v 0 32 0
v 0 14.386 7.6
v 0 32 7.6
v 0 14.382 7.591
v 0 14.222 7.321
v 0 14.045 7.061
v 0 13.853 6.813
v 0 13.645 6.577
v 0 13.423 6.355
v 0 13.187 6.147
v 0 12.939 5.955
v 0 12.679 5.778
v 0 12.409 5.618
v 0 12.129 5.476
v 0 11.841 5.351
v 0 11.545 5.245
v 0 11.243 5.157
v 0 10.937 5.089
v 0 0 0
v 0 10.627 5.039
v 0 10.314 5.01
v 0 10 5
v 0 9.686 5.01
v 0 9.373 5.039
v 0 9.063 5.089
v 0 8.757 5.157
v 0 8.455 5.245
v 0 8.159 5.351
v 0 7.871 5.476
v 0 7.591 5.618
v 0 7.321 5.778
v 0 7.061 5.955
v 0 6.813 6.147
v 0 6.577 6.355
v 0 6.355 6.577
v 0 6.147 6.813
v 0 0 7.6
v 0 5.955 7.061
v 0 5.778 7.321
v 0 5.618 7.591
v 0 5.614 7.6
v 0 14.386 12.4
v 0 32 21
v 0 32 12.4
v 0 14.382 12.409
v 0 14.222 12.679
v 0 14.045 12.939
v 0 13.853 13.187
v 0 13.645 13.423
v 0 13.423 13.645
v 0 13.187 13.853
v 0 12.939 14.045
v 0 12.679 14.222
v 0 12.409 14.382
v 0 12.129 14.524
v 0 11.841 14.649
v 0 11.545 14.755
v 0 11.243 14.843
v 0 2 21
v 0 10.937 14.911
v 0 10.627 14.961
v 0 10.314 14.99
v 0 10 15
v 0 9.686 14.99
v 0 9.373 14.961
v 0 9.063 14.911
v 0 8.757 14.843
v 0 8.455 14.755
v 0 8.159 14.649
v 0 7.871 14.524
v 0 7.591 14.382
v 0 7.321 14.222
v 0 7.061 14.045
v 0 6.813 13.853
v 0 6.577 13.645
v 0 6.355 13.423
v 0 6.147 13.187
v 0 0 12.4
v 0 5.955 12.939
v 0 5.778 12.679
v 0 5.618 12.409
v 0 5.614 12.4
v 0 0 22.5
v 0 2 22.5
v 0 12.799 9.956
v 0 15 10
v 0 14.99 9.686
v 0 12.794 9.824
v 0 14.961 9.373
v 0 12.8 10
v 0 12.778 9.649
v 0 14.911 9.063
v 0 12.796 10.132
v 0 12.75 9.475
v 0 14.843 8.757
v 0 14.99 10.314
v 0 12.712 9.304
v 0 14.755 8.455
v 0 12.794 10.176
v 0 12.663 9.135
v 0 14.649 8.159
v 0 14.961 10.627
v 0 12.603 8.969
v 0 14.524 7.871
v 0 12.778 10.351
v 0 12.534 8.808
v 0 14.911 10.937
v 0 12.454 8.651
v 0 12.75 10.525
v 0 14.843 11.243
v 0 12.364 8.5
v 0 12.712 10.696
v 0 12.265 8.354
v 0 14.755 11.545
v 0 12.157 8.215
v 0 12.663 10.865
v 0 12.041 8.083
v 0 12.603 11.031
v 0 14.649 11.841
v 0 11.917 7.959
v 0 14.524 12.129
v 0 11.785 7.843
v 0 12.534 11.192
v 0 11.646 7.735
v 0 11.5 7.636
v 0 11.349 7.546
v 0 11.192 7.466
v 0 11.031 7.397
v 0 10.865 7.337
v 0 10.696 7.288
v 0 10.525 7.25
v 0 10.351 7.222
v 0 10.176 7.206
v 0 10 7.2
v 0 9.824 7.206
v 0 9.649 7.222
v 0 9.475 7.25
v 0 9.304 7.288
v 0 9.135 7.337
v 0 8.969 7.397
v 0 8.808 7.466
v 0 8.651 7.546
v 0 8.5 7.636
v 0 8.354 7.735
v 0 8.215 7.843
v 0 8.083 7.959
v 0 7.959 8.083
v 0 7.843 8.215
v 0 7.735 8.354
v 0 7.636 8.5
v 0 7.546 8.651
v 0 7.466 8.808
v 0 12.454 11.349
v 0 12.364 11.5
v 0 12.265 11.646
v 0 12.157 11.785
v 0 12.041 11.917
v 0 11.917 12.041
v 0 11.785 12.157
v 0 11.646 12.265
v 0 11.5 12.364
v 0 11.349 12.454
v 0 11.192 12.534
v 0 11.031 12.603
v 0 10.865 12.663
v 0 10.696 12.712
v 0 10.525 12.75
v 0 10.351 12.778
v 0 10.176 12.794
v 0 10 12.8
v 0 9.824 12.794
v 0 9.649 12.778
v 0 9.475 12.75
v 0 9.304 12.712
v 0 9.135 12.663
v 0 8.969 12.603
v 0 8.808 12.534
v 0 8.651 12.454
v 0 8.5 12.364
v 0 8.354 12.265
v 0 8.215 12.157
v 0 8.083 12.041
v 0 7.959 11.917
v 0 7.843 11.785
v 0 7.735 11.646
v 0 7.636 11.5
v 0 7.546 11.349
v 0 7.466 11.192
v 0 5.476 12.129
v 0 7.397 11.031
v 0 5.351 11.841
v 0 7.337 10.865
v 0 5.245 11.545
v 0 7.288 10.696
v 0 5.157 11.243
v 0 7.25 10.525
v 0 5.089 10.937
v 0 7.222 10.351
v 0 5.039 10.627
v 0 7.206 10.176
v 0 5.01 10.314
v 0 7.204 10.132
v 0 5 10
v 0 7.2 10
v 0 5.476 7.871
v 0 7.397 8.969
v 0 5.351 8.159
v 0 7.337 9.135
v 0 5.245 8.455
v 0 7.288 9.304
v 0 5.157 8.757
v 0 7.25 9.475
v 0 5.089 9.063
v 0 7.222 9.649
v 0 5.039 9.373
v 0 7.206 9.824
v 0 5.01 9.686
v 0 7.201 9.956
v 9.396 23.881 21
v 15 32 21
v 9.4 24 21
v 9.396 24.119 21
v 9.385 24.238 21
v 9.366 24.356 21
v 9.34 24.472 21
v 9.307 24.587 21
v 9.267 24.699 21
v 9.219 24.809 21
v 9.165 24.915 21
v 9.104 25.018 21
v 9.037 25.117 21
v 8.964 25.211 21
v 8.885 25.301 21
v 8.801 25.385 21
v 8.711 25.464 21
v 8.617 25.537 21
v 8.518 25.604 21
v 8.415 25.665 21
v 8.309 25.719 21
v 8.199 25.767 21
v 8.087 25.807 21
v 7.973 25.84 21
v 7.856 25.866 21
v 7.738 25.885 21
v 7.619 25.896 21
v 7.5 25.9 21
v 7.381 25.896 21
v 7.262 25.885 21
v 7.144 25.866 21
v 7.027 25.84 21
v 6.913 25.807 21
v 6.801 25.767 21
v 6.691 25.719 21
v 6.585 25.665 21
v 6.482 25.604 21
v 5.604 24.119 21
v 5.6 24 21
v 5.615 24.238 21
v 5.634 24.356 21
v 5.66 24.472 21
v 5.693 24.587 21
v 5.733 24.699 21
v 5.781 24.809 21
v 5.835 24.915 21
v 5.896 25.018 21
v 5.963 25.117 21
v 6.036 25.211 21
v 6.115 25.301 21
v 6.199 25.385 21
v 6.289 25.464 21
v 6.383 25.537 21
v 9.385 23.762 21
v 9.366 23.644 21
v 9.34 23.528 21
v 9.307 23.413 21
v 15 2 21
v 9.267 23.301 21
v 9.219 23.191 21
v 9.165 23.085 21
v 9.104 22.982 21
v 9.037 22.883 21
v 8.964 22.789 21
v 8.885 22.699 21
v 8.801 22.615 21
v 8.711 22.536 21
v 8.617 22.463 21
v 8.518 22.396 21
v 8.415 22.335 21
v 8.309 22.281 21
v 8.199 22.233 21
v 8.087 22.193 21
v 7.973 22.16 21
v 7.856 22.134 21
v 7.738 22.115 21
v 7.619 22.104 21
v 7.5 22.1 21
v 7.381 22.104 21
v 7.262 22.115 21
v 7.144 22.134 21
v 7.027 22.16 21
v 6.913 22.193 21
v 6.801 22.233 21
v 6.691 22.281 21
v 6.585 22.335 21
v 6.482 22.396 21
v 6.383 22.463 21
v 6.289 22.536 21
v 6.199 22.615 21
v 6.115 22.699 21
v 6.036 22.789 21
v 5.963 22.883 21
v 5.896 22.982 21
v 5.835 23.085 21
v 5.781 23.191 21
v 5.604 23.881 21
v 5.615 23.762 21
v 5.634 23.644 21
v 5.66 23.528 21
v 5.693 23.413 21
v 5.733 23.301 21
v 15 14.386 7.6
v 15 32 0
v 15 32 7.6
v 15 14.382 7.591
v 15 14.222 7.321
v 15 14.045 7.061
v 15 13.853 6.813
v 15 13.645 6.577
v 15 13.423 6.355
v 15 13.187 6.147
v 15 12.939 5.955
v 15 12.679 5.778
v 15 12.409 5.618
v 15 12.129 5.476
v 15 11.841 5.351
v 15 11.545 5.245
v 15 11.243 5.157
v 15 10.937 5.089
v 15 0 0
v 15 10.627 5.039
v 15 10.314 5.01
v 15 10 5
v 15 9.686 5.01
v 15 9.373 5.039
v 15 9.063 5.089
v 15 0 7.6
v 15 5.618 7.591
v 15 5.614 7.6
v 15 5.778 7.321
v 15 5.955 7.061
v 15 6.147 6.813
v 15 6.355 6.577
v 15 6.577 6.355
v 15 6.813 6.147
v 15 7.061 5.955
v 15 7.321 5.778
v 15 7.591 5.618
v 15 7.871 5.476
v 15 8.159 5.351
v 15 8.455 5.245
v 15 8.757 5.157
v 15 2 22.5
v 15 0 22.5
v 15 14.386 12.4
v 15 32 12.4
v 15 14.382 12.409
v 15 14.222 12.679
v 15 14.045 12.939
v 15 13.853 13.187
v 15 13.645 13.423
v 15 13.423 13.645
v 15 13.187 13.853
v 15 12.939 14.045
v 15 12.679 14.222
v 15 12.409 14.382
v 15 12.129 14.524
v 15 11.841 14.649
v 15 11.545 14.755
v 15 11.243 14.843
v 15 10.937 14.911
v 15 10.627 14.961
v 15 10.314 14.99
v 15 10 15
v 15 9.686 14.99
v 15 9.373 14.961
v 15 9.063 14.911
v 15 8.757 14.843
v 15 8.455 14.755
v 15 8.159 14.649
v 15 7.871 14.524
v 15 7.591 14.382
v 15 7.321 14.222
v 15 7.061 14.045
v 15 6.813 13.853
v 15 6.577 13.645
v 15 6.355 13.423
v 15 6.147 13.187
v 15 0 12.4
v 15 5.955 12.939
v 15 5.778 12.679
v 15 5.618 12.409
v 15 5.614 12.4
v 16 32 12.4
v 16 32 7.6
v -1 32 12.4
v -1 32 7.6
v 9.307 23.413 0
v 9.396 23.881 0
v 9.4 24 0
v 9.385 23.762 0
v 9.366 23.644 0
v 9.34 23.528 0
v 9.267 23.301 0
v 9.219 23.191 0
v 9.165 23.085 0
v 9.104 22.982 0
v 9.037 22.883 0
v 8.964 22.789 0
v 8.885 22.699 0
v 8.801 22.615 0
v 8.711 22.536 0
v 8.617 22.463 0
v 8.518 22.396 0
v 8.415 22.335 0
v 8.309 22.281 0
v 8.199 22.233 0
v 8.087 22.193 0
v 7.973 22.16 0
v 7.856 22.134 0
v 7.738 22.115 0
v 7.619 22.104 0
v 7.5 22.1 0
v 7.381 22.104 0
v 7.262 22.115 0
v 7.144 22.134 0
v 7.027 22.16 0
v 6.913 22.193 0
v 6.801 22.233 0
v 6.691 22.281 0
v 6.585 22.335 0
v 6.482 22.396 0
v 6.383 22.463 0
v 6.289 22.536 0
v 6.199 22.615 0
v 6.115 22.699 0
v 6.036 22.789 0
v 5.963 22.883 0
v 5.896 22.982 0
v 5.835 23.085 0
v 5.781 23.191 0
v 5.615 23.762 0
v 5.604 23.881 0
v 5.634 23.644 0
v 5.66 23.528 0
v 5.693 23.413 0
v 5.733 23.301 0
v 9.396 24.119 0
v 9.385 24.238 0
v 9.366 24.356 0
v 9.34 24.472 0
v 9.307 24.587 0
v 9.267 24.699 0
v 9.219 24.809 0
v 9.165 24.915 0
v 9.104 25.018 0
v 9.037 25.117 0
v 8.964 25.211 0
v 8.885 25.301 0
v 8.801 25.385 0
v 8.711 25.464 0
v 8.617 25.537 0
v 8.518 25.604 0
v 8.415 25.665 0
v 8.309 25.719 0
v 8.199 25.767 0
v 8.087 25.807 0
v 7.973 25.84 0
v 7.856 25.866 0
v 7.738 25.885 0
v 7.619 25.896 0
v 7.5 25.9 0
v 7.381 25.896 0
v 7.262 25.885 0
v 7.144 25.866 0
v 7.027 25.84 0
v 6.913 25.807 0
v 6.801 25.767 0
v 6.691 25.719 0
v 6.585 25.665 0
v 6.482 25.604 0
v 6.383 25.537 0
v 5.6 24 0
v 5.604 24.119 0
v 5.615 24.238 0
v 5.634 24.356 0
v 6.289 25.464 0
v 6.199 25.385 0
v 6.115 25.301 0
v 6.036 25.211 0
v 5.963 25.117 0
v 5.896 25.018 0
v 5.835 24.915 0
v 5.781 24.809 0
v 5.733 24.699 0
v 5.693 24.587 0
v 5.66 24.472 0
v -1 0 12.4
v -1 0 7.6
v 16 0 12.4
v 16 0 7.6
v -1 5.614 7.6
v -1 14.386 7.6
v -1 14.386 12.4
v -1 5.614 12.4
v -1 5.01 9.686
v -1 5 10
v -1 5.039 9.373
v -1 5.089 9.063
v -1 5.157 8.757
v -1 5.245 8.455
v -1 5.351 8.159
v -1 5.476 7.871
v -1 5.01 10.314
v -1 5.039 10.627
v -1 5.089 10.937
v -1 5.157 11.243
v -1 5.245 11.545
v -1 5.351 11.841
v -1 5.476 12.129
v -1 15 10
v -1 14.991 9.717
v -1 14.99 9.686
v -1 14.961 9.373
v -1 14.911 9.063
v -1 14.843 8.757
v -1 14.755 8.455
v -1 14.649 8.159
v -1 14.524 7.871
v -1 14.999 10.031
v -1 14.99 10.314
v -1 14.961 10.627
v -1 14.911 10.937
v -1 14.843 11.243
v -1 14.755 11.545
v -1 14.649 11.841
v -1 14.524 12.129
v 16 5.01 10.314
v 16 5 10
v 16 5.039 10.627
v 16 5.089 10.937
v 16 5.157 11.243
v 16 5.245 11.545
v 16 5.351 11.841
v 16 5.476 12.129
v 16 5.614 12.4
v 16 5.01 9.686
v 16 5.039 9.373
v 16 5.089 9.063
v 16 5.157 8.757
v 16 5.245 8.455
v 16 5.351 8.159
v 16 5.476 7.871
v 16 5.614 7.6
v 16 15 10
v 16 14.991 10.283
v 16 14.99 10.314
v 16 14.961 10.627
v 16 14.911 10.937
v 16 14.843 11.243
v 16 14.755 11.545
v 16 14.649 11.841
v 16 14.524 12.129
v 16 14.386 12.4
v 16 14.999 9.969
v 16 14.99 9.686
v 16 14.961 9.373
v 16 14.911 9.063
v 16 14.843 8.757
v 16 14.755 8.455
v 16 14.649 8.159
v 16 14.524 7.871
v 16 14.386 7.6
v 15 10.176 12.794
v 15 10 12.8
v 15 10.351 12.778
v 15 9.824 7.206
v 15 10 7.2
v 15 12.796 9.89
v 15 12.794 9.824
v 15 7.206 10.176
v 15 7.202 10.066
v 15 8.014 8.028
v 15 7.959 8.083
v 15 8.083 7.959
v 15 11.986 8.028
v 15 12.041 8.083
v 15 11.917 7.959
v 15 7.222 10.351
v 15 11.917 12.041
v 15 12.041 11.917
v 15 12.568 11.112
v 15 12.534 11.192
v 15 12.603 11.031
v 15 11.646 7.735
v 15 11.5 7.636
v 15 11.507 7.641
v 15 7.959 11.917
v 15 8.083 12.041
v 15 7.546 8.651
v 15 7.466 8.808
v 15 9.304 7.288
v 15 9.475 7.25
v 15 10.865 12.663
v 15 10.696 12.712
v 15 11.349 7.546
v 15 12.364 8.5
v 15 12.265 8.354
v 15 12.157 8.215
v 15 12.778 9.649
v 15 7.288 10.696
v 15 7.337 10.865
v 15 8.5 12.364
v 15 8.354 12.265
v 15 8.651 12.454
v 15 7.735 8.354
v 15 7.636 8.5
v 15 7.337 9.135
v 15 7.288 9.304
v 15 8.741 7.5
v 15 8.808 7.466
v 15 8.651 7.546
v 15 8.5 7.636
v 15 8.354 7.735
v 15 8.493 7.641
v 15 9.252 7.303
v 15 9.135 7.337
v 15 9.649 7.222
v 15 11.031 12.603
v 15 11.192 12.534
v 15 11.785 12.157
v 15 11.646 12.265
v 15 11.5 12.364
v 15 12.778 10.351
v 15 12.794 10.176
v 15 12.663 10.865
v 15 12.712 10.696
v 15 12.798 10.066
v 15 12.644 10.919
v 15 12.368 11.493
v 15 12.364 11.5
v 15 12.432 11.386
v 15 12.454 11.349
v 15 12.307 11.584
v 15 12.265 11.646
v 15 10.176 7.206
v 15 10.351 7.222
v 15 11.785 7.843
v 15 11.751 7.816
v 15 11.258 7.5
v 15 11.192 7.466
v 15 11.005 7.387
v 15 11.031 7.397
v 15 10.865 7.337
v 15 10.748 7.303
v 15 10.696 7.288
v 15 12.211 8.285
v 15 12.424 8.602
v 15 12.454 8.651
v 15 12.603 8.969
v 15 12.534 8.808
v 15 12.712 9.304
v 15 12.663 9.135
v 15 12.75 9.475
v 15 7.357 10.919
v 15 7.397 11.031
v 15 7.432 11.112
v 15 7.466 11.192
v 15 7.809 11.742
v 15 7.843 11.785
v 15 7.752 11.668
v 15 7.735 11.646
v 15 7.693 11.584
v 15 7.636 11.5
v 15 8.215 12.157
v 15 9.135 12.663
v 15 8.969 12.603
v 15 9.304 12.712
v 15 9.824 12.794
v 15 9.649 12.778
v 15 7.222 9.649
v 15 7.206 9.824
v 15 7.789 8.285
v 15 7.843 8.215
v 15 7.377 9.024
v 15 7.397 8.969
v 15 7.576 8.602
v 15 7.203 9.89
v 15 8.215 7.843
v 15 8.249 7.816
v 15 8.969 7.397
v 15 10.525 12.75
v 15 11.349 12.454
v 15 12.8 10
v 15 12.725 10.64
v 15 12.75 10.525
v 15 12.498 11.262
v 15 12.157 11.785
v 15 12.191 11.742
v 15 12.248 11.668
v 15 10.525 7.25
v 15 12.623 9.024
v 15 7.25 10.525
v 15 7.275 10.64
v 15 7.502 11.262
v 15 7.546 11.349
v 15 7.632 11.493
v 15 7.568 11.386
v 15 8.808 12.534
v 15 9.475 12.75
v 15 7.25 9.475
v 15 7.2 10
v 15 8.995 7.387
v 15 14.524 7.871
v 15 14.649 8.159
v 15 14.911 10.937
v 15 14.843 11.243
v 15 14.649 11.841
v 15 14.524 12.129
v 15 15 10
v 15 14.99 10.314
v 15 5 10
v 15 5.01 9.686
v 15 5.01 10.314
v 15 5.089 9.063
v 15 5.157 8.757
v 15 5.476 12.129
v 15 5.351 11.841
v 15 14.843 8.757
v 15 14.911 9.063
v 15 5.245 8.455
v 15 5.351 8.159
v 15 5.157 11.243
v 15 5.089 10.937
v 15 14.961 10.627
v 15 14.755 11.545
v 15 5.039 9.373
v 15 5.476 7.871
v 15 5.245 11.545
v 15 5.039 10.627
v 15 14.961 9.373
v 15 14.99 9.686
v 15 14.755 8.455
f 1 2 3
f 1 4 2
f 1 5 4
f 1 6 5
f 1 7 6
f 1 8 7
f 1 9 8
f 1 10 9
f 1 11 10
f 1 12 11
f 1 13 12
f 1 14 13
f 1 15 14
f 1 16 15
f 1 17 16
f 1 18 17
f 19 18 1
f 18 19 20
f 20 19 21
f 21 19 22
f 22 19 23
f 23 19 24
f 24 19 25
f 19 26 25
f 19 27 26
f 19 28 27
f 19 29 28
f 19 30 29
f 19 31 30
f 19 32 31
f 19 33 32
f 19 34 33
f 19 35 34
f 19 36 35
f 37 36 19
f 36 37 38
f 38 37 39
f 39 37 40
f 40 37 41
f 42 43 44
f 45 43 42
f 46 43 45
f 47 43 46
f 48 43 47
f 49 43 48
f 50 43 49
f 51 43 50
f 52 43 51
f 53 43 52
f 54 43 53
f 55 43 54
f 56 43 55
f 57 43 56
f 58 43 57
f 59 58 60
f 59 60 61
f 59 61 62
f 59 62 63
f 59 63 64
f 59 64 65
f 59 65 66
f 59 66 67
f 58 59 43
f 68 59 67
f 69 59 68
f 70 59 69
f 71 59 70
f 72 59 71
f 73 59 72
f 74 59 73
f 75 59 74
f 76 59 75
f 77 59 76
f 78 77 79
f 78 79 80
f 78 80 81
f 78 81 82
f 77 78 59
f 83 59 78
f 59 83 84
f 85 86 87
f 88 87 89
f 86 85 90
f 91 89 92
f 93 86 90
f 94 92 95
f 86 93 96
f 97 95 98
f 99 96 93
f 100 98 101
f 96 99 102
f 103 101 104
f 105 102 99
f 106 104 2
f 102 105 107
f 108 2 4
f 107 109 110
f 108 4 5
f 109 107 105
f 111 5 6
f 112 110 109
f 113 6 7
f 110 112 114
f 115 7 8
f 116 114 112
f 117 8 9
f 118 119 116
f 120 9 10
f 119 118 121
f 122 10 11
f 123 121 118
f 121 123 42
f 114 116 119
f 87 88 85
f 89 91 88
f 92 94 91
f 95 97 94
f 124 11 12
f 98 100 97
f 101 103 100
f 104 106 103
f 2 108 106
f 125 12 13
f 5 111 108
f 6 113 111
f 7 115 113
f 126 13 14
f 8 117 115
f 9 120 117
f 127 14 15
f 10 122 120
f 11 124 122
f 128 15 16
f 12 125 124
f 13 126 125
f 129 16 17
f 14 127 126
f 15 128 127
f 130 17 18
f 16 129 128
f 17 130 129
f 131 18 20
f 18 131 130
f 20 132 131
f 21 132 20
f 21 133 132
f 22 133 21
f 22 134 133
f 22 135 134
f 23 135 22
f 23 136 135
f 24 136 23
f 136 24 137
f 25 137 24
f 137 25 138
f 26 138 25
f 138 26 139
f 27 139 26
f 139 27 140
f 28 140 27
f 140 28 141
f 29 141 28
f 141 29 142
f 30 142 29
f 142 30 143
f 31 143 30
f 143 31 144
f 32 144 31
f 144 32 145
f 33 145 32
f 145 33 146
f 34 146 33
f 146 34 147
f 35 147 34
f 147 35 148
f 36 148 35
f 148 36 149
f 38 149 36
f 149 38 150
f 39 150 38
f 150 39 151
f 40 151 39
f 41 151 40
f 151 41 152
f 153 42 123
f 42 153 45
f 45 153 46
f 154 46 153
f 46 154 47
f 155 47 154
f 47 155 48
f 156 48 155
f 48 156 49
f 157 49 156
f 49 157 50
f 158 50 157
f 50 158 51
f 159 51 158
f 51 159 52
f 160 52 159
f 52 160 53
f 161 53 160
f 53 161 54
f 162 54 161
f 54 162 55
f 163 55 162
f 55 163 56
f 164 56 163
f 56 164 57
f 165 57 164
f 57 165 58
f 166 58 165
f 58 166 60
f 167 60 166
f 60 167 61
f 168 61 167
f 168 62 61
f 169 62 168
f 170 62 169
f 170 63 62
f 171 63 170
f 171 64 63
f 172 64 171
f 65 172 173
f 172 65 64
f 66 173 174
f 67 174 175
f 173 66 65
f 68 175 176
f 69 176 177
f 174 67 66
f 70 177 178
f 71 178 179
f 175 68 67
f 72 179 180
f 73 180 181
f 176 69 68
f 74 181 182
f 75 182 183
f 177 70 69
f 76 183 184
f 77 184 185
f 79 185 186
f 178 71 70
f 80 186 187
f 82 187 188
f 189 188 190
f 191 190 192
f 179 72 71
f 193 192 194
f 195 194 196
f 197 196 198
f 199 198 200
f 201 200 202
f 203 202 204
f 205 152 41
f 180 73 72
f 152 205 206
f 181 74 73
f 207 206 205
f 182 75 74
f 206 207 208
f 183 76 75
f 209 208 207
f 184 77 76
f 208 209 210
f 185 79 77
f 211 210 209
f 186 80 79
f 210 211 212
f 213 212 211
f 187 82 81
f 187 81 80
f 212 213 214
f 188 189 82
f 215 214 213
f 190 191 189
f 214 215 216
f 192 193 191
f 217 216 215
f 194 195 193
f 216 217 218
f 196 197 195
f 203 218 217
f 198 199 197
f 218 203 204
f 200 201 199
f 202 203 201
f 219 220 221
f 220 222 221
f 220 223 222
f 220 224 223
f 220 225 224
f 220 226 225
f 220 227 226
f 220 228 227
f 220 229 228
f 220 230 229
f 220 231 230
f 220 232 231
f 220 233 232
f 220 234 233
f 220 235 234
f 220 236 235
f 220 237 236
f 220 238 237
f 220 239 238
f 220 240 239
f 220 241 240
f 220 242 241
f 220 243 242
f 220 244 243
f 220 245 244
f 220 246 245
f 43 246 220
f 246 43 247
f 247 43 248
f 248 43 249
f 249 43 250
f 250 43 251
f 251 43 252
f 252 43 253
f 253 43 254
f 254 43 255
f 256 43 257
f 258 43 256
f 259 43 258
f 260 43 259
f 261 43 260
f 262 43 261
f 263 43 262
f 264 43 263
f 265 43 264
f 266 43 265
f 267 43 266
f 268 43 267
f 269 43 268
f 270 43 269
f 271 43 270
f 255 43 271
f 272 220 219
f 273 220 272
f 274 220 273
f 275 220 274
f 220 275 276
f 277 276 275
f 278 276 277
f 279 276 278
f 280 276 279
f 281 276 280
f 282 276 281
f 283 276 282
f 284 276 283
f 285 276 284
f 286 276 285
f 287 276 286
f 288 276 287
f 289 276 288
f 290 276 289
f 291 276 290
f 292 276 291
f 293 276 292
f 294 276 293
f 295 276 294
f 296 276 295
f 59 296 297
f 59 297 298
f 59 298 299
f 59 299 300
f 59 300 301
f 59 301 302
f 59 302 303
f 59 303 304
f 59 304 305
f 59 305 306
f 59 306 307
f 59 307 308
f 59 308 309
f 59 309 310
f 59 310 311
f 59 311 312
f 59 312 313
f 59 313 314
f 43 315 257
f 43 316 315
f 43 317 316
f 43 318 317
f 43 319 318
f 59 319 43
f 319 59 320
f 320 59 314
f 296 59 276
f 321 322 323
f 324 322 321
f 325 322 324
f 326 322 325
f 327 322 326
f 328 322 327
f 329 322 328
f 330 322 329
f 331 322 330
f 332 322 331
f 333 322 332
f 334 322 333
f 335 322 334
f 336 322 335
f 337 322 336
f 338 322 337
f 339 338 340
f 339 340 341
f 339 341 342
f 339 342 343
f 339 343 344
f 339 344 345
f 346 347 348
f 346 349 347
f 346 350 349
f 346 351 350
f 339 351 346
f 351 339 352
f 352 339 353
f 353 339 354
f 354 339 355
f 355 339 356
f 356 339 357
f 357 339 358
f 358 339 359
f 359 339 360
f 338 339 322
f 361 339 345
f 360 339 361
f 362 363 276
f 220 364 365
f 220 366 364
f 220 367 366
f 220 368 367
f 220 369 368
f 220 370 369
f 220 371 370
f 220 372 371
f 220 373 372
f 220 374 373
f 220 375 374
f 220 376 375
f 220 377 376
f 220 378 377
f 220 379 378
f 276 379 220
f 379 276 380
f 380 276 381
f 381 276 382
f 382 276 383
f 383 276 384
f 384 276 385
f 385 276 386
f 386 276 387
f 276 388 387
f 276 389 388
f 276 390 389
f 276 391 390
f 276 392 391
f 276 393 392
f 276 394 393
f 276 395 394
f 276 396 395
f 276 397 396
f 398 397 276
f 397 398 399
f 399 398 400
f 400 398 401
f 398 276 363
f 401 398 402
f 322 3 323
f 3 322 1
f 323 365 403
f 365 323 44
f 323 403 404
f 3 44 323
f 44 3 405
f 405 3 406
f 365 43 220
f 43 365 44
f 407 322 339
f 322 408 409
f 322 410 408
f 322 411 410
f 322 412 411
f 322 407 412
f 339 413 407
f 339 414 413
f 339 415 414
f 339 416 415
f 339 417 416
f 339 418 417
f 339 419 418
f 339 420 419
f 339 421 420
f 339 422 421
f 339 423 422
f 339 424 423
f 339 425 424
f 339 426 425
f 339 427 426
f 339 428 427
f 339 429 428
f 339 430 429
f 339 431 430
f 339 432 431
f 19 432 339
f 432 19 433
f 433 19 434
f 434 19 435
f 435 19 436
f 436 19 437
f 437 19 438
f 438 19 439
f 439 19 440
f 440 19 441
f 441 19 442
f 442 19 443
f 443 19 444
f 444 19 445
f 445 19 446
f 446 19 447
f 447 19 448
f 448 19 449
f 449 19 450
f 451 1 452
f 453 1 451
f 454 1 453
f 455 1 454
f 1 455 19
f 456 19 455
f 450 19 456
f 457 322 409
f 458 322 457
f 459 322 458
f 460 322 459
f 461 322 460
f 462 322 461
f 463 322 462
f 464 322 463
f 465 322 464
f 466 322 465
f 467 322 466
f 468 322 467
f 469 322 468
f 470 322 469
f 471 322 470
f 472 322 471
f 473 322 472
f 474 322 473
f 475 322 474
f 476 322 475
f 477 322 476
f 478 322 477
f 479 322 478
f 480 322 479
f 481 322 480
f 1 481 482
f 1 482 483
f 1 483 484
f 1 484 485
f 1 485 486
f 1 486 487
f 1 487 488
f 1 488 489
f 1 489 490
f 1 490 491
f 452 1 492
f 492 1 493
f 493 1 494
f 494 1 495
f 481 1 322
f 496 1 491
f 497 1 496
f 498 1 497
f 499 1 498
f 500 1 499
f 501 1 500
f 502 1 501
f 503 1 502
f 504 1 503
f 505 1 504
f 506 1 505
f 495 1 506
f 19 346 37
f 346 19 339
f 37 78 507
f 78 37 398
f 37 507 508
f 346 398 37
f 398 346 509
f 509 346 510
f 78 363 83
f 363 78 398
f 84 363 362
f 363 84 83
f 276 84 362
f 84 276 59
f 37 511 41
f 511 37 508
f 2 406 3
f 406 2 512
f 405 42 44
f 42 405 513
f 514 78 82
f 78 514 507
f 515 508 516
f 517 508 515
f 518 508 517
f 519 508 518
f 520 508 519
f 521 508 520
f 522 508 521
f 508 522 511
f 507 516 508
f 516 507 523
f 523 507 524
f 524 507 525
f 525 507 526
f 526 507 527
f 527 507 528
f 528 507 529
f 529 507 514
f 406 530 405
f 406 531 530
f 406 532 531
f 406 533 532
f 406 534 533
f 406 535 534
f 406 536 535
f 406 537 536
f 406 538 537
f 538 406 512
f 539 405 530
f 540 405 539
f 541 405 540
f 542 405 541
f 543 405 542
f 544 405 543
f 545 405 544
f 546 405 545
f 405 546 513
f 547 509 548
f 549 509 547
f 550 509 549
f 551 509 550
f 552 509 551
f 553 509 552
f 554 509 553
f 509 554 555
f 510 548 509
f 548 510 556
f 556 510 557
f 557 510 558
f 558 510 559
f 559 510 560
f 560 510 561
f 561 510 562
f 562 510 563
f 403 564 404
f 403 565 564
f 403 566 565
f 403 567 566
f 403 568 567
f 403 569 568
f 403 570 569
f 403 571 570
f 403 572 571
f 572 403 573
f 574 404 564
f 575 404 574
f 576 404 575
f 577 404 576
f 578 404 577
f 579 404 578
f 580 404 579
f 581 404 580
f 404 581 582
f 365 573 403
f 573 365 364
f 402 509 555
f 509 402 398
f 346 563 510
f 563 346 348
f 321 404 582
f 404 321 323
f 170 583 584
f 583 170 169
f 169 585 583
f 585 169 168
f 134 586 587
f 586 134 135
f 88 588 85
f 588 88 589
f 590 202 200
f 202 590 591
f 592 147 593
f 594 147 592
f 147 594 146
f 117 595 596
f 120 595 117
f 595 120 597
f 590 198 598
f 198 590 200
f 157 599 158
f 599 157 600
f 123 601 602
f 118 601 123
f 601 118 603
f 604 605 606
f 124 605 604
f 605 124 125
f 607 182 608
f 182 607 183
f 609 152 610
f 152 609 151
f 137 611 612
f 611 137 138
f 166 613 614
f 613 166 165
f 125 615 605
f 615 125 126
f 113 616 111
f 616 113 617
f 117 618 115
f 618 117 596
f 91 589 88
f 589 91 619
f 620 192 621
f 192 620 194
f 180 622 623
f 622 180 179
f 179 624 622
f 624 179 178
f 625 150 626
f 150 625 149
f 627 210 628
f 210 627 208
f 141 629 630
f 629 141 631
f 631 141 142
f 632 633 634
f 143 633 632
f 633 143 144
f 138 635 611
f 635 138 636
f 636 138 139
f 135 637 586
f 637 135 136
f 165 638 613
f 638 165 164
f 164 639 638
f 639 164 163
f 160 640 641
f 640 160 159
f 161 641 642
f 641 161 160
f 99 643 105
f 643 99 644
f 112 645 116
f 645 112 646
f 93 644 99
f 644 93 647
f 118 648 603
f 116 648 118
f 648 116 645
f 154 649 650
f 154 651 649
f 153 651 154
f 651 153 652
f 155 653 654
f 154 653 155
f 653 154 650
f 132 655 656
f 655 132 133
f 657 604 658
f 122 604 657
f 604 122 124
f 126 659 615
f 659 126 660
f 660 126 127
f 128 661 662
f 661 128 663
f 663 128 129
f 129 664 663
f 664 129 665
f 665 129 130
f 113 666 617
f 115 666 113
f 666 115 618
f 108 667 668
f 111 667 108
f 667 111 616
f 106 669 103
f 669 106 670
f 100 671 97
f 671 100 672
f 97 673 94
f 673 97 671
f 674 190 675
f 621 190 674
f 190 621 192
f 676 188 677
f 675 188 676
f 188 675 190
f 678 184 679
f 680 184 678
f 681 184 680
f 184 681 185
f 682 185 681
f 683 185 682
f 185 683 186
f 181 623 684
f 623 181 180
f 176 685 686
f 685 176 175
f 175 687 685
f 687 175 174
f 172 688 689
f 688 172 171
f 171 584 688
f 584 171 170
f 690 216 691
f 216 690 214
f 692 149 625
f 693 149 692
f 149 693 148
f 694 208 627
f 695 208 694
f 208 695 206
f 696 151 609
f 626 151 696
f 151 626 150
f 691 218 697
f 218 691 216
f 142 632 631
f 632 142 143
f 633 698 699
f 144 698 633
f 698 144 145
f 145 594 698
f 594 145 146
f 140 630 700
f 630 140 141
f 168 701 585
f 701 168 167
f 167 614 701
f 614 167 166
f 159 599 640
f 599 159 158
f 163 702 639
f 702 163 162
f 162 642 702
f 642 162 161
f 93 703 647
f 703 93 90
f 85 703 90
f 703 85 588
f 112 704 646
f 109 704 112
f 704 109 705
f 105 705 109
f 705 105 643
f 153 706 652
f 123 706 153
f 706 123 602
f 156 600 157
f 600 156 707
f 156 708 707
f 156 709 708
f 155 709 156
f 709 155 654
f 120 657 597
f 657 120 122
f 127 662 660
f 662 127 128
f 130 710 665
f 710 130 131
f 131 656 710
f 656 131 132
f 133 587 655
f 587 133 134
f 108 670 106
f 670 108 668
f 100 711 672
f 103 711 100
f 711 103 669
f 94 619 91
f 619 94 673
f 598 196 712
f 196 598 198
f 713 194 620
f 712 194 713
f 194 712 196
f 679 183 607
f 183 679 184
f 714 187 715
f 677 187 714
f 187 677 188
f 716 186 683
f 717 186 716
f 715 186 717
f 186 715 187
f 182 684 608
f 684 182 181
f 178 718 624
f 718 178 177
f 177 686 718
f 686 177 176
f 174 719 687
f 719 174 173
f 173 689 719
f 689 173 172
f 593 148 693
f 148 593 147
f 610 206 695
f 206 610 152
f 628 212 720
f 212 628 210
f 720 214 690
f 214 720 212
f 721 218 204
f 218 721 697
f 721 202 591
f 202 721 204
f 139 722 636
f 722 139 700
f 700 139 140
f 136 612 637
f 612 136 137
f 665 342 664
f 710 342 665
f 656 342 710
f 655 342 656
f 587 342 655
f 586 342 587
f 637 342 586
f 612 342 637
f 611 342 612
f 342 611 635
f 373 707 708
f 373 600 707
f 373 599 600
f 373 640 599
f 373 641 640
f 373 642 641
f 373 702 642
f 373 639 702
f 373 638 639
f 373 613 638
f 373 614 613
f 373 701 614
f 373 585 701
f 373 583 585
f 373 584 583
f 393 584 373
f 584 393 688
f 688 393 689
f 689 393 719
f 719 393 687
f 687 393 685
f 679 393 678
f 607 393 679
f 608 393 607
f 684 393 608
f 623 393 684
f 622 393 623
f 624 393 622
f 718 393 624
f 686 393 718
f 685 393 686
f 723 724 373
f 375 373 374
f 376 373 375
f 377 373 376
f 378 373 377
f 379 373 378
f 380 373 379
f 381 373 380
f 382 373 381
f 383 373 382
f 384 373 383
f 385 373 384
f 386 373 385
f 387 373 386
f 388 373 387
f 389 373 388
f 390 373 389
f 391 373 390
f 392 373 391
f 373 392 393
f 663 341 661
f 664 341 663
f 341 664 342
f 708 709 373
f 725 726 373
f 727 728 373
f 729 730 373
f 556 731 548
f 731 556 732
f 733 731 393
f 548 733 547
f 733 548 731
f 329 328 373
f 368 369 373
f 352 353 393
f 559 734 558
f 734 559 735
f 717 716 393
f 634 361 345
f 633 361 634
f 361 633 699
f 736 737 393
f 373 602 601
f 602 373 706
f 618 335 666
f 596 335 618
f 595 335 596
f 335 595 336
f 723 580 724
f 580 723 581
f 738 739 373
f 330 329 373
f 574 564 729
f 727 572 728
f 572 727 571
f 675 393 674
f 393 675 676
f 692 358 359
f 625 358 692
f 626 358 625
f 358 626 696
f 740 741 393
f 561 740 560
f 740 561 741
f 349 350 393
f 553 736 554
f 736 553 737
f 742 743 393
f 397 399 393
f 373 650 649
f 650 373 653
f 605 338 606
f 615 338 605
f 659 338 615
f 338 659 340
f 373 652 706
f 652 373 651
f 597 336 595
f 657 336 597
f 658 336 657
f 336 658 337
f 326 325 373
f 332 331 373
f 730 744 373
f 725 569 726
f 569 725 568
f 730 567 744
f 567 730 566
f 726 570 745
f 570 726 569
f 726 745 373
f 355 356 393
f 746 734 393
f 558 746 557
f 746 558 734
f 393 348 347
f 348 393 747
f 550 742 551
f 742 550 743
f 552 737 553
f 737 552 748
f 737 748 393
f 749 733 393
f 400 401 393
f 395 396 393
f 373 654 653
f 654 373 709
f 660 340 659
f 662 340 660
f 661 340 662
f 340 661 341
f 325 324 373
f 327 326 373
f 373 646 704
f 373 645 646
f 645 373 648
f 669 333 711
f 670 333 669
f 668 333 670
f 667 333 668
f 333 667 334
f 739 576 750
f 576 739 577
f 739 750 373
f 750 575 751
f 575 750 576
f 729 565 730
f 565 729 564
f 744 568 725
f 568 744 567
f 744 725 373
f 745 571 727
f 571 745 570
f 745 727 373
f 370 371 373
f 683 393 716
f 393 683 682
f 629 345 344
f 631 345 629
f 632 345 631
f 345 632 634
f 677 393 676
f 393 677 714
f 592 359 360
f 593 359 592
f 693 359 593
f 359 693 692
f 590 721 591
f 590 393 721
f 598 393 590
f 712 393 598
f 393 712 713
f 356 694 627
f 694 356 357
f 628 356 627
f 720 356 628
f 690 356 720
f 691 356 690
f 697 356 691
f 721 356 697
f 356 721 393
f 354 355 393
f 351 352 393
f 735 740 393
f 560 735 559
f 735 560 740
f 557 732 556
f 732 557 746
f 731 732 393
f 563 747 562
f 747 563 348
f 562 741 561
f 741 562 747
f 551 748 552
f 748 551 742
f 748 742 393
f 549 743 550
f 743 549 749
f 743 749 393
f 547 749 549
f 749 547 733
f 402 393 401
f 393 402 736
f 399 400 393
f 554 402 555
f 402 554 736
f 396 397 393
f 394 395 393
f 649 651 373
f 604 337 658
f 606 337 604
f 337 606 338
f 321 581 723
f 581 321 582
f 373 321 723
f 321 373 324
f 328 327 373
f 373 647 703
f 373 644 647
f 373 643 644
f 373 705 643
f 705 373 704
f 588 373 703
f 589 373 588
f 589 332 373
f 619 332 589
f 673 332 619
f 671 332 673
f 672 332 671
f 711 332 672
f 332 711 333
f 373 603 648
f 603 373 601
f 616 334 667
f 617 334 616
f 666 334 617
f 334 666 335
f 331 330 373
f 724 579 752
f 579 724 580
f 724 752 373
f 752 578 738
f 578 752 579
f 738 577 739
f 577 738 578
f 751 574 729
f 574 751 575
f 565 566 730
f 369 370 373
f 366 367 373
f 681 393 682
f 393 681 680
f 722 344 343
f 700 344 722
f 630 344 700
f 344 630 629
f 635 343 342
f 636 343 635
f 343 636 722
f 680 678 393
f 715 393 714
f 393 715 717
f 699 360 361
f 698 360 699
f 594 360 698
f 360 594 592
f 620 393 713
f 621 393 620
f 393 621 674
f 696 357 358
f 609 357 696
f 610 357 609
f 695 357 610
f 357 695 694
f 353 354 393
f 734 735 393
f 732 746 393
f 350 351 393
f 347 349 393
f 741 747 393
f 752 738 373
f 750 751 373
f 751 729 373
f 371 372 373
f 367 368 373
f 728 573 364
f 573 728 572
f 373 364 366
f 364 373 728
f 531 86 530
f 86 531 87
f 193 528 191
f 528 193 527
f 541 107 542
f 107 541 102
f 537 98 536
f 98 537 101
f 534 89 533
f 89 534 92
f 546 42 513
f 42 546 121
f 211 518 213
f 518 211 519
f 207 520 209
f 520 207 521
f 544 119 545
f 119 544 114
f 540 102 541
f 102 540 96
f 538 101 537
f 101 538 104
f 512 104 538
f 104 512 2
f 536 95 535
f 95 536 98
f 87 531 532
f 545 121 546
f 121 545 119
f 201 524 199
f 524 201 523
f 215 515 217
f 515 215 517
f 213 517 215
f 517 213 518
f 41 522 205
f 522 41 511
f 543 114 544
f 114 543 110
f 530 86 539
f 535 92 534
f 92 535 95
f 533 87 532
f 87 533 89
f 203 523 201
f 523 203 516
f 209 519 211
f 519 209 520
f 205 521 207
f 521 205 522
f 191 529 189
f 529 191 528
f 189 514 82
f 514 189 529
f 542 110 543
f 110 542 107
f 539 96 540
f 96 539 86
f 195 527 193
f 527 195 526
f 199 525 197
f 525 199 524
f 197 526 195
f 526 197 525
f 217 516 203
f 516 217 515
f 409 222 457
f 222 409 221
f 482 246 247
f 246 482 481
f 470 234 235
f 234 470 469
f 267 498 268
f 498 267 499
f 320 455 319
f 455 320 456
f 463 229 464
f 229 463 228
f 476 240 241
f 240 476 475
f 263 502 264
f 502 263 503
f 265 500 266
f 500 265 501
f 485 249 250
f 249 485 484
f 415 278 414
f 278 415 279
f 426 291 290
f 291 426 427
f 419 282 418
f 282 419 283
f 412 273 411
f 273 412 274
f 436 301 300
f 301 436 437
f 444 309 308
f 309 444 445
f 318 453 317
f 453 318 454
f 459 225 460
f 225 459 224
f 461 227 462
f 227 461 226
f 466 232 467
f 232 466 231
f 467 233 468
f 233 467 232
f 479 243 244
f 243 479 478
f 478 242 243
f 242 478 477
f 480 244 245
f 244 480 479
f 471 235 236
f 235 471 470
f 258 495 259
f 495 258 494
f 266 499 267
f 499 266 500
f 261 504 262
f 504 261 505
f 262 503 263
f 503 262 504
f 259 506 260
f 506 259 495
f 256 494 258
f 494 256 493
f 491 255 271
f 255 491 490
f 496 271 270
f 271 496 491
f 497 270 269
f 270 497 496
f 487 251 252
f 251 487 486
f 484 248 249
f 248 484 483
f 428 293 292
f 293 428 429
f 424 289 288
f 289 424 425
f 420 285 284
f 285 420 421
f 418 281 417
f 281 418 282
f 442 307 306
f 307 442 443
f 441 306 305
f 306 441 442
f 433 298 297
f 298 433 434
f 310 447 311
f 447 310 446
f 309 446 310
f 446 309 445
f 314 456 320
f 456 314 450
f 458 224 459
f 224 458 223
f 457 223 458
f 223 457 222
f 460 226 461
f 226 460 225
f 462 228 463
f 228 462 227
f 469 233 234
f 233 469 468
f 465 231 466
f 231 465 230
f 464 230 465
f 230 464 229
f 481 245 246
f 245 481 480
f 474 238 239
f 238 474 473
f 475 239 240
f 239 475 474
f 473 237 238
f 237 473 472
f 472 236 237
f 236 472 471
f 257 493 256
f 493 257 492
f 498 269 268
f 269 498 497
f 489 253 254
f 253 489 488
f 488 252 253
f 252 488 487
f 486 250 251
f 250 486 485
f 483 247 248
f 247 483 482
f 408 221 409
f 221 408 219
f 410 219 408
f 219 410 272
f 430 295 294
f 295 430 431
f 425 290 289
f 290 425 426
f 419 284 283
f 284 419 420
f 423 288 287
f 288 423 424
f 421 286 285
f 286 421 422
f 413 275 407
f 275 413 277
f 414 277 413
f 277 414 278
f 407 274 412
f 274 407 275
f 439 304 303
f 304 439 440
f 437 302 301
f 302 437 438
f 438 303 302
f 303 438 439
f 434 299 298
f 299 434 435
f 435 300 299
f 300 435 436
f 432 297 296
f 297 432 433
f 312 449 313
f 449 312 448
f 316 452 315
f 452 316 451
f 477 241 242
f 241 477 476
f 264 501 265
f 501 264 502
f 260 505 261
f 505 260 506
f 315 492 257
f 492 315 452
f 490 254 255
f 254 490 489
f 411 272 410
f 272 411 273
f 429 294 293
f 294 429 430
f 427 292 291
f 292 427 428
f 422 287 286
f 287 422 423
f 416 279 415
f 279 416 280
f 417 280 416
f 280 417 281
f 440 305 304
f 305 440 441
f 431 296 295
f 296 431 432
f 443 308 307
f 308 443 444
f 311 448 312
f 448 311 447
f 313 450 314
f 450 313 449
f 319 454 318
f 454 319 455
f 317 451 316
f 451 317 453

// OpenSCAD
// file: part-lib.scad
module BeltRecess(){
    hull(){
        translate([107, 0, 0]) cylinder(d = 52, h= 50);
        translate([33, 0, 0]) cylinder(d = 34, h= 50);
    }
}



module ScrewSlot(diameter, width, length){
    hull(){
        cylinder(d = diameter, h = length);
        translate([0, width]) cylinder(d = diameter, h = length);
    }
}

module FixedLeadScrewBushing(){  
    rotate([0, -90, 0]) translate([0, 0, 0]) union(){
        translate([0, 0, -10]) intersection(){
            cylinder(d = 54, h= 20, center = true);
            cube([46, 46, 20], center = true);
        }
        
        translate([0, 0, 0]) cylinder(d = 36, h = 18);
        translate([0, 0, 18]) cylinder(d = 18, h = 100);
        
        for(i = [45:90:315]){
            screwRadius = 22;
            translate([screwRadius * sin(i), screwRadius * cos(i), 0]) cylinder(d = 5.2, h = 116);
        }
    }
}

module SupportLeadScrewBushing(){  
    rotate([-90, 0, 90]) translate([-21, -27, -20]) union(){
        intersection(){
            translate([21, 27, 0]) cylinder(d = 54, h= 20);
            cube([42, 60, 20]);
        }
        
        translate([21, 27, 20]) cylinder(d = 36, h = 7);
        translate([21, 27, 7]) cylinder(d = 16, h = 100);
        
        translate([6, 12, 7]) cylinder(d = 5.2, h = 116);
        translate([36, 42, 7]) cylinder(d = 5.2, h = 116);
        translate([6, 42, 7]) cylinder(d = 5.2, h = 116);
        translate([36, 12, 7]) cylinder(d = 5.2, h = 116);
    }
}

module NEMA24MotorMount(slidePlay){
    union(){
        cube([102, 62 + slidePlay, 62]);
        
        translate([102, 7.5, 7.5]) rotate([0, 90, 0]) {
            ScrewSlot(5, slidePlay, 100);
        }
        
        translate([102, (62 + slidePlay) - 7.5, 7.5]) rotate([0, 270, 180]) {
            ScrewSlot(5, slidePlay, 100);
        }
        
        translate([102, (62 + slidePlay) - 7.5, 62 - 7.5]) rotate([0, 270, 180]) {
            ScrewSlot(5, slidePlay, 100);
        }
        
        translate([102, 7.5, 62 - 7.5]) rotate([0, 90, 0]) {
            ScrewSlot(5, slidePlay, 100);
        }
        
        translate([102, 31, 31]) rotate([0, 90, 0]) {
            ScrewSlot(40, slidePlay, 100);
        }
    }
}

module TSlotGuide(length, guideCount){
    translate([0, 0, 0.5]){
        for (index = [0: guideCount - 1]) {
            translate([(length / 2), 10 + (index * 20), 0]) cube([length, 4.8, 1], center = true);
        }
    }
}

module LimitSensorMount(){
    translate([0, 0, 0]) difference(){
        union(){
            cube([32, 20, 5]);
        }
        
        translate([2.5, 1.5, 3.5]) cube([27, 17, 2]);
        
        translate([25.5, 10, -50]) cylinder(d = 3.8, h = 100);
    }
}

module CompactLimitSensorMount(){
    translate([0, 0, 0]) difference(){
        union(){
            cube([27, 20, 5]);
        }
        
        translate([0, 1.5, 3.5]) cube([27, 17, 2]);
        
        translate([20.5, 10, -50]) cylinder(d = 3.8, h = 100);
    }
}

module MagnetHolder(){
    translate([0, 0, 0]) difference(){
        union(){
            cube([18, 18, 6]);
        }
        
        translate([2.5, 2.5, 1.35]) cube([19, 13, 3.3]);
    }
}
// main file
$fn = 100;
include <part-lib.scad>

module YLimitSensor(){
    difference(){
        union(){
                cube([15, 32, 21]);
                cube([15, 2, 22.5]);
            
            
            translate([-1, 0, 0]) rotate([90, 0, 90]) TSlotGuide(32, 1);
            translate([15, 0, 0]) rotate([90, 0, 90]) TSlotGuide(32, 1);
        }
        translate([30, 10, 10]) rotate([0, 270, 0]) cylinder(d = 5.6, h = 40);
        
        translate([25, 10, 10]) rotate([0, 270, 0]) cylinder(d = 10, h = 10);
        translate([0, 10, 10]) rotate([0, 270, 0]) cylinder(d = 10, h = 10);
        
        translate([7.5, 24, -10]) cylinder(d = 3.8, h = 40);
        
    }
}

YLimitSensor();
